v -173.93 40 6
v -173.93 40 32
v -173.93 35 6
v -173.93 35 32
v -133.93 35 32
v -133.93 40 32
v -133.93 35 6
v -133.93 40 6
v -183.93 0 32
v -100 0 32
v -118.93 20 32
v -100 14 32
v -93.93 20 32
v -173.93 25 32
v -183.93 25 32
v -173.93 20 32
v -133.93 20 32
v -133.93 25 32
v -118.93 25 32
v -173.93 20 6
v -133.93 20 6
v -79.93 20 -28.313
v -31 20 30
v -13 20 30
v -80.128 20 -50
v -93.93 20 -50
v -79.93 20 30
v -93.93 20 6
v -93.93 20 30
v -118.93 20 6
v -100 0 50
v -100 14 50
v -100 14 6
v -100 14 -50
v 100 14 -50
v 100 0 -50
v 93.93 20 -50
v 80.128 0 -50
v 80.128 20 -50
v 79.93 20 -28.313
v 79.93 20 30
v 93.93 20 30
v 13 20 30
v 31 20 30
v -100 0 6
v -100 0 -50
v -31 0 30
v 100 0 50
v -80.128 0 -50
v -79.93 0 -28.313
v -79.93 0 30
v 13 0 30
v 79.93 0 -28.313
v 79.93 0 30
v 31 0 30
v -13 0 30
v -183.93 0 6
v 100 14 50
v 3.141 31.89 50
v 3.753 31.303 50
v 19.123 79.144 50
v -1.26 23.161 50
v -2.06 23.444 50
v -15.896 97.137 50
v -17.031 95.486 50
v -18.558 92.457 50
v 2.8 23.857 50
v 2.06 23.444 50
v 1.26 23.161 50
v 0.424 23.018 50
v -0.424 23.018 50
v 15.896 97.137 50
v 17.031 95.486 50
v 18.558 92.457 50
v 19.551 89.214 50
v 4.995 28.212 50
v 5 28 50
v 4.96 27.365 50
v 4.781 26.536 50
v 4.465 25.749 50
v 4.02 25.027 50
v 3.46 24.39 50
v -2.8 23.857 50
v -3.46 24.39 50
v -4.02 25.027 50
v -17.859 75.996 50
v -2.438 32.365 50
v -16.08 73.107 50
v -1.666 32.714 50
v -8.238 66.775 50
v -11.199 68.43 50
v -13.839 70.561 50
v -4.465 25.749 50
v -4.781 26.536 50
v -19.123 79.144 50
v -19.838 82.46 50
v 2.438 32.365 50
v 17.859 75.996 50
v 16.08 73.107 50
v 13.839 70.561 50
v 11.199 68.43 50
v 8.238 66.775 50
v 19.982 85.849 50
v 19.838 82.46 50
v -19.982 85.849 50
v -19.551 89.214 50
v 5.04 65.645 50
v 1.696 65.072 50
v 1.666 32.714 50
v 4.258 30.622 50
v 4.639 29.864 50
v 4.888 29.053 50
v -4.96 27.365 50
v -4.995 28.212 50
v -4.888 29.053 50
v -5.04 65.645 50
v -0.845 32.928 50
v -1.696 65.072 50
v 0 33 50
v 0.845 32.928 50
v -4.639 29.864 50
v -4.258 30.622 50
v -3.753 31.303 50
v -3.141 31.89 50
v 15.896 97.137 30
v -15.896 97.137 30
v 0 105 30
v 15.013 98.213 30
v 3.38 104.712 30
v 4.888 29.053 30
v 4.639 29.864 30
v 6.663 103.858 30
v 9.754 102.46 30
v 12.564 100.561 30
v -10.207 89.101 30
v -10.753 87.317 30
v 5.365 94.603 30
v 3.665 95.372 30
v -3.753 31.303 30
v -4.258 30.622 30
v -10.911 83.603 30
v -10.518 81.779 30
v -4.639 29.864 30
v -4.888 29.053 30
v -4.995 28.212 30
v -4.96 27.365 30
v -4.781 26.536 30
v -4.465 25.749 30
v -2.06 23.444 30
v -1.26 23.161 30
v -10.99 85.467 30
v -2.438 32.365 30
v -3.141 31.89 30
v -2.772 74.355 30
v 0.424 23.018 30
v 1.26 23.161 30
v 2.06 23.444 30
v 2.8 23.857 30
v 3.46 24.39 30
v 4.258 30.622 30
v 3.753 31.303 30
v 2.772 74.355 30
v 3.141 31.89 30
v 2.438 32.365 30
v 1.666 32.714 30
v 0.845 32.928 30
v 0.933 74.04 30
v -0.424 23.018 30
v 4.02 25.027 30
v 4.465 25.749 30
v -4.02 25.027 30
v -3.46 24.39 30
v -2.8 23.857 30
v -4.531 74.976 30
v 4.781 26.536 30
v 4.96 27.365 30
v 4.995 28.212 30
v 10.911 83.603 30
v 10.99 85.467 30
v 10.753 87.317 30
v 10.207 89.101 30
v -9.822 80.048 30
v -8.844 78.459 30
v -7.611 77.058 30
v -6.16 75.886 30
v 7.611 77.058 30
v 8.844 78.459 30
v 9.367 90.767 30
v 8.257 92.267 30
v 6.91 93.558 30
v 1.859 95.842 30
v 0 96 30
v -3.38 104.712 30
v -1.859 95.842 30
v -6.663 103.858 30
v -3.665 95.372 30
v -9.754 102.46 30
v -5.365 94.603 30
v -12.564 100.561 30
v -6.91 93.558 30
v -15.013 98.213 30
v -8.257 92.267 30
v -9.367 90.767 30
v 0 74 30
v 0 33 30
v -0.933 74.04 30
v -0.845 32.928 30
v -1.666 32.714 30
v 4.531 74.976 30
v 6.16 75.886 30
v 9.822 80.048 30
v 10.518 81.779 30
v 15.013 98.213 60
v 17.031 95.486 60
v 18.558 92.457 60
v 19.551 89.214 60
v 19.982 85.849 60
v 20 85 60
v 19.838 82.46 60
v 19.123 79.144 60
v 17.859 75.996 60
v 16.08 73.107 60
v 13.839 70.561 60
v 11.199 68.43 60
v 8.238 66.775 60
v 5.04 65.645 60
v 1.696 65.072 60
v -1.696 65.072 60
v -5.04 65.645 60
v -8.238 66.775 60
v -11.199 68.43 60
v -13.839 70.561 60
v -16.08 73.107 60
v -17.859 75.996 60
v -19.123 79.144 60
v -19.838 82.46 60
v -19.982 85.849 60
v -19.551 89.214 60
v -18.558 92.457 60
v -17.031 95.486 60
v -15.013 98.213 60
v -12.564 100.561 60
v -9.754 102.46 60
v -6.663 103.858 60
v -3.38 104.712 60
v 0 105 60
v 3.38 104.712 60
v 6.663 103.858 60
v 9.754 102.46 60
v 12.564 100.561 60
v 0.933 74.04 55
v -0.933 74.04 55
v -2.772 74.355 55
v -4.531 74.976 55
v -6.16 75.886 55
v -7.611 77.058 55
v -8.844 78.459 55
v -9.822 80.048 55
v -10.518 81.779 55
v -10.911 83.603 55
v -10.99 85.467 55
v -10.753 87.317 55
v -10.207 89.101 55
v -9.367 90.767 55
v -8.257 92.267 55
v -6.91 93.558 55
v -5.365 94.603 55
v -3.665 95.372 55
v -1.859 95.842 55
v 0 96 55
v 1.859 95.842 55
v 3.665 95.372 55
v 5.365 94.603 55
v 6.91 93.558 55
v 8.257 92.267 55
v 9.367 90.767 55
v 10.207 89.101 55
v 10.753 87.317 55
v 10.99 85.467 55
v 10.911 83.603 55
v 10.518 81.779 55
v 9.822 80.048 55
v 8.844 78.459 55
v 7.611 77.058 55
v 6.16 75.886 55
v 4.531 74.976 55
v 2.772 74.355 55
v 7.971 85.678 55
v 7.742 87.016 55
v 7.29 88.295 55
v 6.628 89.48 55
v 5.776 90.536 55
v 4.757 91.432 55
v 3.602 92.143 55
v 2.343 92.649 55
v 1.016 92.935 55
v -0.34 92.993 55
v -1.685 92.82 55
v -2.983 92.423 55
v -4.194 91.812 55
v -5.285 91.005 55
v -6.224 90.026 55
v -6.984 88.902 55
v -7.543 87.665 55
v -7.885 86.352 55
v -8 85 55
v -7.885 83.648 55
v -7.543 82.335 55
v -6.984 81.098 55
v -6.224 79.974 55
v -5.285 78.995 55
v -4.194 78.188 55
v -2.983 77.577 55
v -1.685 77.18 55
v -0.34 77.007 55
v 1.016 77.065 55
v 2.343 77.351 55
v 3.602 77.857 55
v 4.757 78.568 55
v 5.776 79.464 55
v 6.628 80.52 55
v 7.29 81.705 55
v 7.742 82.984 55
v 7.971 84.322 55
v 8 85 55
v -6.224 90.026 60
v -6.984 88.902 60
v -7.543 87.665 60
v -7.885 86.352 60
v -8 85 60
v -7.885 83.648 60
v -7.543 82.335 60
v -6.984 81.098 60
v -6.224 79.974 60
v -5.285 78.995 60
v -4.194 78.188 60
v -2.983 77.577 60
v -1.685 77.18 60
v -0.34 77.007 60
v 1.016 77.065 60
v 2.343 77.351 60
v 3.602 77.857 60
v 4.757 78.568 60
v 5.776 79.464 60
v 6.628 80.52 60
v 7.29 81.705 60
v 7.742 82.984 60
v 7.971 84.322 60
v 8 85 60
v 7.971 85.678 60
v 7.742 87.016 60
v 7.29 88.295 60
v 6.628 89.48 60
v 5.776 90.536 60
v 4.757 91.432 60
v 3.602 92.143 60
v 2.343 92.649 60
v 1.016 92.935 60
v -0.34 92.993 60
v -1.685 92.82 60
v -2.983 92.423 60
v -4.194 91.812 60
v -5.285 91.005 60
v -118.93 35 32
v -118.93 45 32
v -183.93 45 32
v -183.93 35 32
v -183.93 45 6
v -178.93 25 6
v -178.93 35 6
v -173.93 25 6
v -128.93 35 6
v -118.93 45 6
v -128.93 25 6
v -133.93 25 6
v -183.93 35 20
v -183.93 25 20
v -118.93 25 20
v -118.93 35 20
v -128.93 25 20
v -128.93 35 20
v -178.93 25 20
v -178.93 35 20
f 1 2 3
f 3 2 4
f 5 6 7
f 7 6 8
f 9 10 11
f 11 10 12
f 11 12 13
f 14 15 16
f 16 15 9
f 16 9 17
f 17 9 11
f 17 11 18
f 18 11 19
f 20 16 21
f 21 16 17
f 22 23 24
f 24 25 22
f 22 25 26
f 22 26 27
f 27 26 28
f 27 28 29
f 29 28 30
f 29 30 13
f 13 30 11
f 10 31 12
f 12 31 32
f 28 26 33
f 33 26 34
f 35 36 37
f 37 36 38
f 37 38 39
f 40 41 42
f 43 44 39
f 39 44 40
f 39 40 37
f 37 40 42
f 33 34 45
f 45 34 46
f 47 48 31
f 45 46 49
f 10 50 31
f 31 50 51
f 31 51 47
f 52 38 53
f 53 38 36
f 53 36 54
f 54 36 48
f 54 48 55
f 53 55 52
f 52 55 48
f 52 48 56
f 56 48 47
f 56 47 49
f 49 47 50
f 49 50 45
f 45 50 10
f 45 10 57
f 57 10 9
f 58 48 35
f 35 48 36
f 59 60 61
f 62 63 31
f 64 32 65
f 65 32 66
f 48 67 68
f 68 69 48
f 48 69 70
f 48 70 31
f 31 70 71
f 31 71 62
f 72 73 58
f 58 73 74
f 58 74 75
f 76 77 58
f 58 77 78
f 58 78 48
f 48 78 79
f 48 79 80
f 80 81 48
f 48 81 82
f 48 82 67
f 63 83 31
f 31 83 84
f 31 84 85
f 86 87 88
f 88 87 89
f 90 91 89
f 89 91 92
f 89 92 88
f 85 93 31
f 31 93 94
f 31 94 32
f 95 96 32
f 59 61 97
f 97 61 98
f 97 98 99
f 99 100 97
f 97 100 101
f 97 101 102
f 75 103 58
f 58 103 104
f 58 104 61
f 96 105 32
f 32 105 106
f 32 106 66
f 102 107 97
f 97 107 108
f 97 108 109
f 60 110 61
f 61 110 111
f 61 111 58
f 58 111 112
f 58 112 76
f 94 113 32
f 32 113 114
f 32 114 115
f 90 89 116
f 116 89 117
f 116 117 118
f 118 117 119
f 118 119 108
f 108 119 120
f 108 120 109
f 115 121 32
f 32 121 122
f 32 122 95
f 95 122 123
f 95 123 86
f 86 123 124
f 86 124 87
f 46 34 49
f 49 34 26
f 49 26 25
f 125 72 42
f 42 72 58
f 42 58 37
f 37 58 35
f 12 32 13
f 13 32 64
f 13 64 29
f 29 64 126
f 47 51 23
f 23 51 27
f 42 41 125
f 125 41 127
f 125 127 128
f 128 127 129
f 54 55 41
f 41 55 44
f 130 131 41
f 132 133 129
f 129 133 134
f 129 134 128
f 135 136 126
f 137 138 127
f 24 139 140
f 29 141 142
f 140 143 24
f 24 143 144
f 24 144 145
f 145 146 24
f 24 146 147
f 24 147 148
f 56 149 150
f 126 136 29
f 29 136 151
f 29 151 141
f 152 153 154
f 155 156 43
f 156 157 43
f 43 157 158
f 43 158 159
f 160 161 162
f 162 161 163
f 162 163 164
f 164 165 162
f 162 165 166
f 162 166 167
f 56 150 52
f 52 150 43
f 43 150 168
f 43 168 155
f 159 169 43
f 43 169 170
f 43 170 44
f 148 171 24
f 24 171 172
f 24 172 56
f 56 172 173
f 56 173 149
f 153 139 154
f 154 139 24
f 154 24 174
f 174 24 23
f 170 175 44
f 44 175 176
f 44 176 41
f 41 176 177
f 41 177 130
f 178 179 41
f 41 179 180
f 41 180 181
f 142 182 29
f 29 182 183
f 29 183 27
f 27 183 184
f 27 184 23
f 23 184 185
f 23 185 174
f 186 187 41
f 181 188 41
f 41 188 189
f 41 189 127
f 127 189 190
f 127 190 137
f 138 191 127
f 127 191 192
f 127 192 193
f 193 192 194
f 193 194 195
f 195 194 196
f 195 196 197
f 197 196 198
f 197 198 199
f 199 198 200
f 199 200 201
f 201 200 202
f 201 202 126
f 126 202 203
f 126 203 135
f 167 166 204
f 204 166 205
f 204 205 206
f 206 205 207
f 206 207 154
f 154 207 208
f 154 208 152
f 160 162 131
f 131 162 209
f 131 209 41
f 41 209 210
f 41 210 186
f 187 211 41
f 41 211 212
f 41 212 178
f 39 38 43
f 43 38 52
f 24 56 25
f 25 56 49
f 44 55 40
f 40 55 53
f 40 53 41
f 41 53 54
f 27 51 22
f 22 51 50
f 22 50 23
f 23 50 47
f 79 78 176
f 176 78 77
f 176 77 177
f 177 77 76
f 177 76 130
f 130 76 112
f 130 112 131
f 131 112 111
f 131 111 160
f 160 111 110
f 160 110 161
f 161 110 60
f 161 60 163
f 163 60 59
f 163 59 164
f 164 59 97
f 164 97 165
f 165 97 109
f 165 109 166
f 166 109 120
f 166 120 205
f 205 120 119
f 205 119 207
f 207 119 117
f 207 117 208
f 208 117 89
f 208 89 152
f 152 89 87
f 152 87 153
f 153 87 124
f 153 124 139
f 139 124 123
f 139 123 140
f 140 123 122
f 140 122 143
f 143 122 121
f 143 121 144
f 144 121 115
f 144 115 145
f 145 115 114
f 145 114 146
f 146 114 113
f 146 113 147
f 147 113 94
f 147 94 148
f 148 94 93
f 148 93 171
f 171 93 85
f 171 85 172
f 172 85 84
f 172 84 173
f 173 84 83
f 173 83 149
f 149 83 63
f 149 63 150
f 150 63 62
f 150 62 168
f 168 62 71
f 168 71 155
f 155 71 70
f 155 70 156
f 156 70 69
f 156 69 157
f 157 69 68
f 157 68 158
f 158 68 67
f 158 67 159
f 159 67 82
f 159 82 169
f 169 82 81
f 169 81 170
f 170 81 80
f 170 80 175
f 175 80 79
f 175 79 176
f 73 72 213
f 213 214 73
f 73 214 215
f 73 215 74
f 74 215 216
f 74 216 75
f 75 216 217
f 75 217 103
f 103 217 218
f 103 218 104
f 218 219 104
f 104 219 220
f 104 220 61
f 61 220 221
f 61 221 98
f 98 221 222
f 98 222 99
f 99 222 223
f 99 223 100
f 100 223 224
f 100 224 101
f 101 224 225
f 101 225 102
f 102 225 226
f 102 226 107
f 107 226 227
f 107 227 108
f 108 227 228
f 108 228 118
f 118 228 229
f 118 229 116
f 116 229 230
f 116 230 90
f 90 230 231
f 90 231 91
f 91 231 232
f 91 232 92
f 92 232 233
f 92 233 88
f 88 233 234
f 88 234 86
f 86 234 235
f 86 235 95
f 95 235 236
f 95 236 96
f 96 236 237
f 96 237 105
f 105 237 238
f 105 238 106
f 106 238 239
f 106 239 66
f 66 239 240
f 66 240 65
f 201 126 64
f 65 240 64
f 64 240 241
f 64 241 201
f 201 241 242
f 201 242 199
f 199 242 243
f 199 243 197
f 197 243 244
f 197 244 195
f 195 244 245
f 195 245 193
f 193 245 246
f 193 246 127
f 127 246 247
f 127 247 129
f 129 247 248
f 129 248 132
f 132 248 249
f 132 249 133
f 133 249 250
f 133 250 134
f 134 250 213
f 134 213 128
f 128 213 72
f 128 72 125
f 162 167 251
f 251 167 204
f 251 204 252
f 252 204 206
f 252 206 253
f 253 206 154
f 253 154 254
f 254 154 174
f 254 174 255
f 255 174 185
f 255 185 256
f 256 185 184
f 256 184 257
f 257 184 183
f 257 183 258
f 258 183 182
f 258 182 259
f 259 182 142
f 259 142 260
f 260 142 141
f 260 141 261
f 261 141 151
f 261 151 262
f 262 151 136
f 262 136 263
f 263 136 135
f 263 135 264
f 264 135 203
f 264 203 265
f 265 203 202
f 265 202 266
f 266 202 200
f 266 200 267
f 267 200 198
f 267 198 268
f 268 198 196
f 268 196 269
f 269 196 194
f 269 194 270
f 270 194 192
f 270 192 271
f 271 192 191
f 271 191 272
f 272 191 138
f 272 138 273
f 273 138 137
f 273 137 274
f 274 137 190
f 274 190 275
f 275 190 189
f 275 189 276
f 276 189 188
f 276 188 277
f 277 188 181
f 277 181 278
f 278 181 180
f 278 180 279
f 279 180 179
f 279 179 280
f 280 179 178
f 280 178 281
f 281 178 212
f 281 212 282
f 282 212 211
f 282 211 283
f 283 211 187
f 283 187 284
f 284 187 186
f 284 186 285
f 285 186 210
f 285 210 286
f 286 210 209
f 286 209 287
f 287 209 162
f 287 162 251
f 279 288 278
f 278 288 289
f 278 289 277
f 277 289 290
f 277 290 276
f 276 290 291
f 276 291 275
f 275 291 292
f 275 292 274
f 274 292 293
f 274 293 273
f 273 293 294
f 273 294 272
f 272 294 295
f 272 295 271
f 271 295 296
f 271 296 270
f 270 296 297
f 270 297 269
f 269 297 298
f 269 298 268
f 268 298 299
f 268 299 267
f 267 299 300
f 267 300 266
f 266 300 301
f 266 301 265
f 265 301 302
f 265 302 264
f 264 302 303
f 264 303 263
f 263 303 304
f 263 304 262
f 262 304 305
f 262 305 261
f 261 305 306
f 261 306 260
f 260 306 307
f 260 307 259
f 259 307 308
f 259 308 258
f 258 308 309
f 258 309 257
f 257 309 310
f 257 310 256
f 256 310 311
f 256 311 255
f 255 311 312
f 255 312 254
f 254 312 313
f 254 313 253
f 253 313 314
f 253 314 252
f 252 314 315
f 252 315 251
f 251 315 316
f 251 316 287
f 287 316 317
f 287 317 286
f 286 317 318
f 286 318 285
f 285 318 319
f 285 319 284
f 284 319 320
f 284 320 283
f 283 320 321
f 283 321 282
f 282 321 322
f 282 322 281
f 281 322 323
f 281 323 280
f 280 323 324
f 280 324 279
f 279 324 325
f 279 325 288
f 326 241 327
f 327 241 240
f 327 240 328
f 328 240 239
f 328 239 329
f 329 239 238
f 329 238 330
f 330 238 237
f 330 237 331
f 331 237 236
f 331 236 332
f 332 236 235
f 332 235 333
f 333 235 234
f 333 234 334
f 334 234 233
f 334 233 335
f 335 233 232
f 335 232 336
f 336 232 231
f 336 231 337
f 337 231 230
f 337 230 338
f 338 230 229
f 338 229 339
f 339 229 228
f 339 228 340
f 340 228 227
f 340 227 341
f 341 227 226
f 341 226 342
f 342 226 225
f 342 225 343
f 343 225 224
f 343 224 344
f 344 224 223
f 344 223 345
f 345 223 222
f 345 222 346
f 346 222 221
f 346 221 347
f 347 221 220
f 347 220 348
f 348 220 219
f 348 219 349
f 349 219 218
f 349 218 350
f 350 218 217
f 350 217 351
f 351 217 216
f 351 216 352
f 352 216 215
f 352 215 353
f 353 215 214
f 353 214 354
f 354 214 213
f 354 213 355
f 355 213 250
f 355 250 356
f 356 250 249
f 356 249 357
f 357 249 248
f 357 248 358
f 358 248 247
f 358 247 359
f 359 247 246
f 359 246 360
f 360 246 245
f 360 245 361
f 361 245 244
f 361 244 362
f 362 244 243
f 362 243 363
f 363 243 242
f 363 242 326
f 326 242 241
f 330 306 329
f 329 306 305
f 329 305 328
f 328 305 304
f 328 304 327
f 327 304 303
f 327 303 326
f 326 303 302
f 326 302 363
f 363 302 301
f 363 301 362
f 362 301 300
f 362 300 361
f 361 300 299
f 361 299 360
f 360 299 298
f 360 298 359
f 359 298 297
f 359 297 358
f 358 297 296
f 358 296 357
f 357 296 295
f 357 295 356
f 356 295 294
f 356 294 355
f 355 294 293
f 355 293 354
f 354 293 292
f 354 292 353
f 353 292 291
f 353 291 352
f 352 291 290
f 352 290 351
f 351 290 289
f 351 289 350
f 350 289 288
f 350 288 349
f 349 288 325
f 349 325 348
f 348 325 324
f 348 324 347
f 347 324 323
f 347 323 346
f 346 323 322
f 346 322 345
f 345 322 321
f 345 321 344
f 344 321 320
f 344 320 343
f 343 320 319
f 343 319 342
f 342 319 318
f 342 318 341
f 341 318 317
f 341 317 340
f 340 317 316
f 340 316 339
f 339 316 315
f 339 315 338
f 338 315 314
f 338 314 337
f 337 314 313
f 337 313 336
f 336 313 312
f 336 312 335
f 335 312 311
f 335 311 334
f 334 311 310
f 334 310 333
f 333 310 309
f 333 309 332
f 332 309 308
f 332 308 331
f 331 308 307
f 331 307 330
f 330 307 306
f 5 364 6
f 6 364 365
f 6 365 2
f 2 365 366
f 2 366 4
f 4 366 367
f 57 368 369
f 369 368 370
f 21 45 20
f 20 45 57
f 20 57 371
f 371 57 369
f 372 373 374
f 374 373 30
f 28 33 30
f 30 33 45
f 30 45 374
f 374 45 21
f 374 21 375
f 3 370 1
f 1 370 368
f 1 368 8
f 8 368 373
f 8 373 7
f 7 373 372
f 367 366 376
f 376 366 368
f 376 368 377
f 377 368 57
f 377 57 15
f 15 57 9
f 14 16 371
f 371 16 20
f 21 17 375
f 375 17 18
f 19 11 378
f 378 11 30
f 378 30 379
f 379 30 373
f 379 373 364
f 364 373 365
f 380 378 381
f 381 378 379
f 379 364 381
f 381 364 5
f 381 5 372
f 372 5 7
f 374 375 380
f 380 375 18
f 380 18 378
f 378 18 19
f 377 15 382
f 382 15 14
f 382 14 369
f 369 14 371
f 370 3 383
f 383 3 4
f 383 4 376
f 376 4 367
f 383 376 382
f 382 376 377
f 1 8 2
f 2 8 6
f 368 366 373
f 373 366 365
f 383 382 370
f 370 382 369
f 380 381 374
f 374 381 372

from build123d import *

# Parameters (mm, degrees)
SKETCH1_W           = 200
SKETCH1_H           = 100
BOSS_EXTRUDE1_DEPTH = 50
CUT_EXTRUDE1_DEPTH  = 174.205080757
SKETCH3_W           = 80
SKETCH3_H           = 80
CUT_EXTRUDE2_DEPTH  = 230.128784748
CUT_EXTRUDE3_DEPTH  = 100
SKETCH6_R           = 5
CUT_EXTRUDE5_DEPTH  = 100
BOSS_EXTRUDE2_DEPTH = 25
CUT_EXTRUDE6_START  = -35
SKETCH8_R           = 11
CUT_EXTRUDE6_DEPTH  = 35
SKETCH9_R           = 20
SKETCH9_R_2         = 8
BOSS_EXTRUDE3_DEPTH = 5
SKETCH10_W          = 90
SKETCH10_H          = 26
BOSS_EXTRUDE4_DEPTH = 20
SKETCH11_W          = 10
SKETCH11_H          = 26
SKETCH11_W_2        = 15
BOSS_EXTRUDE5_DEPTH = 20
SKETCH12_W          = 65
SKETCH12_H          = 10
CUT_EXTRUDE7_DEPTH  = 12
SKETCH13_W          = 65
SKETCH13_H          = 26
BOSS_EXTRUDE6_DEPTH = 5
CUT_EXTRUDE8_DEPTH  = 35


with BuildPart() as part:
    # Sketch1 → Boss-Extrude1 (new, symmetric)
    with BuildSketch(Plane.XY):
        with Locations((0, 50)):
            Rectangle(SKETCH1_W, SKETCH1_H)
    extrude(amount=BOSS_EXTRUDE1_DEPTH, both=True)

    # Sketch2 → Cut-Extrude1 (cut, through all)
    with BuildSketch(Plane.XY.offset(50)):
        Polygon((-13, 100), (-100, 14), (-100, 100), align=None)
        Polygon((100, 14), (100, 100), (13, 100), align=None)
    extrude(amount=-CUT_EXTRUDE1_DEPTH, mode=Mode.SUBTRACT)

    # Sketch3 → Cut-Extrude2 (cut, through all)
    with BuildSketch(Plane.ZY.offset(100)):
        with Locations((-10, 60)):
            Rectangle(SKETCH3_W, SKETCH3_H)
    extrude(amount=-CUT_EXTRUDE2_DEPTH, mode=Mode.SUBTRACT)

    # Sketch4 → Cut-Extrude3 (cut)
    with BuildSketch(Plane(origin=(0, 20, 0), x_dir=(1, 0, 0), z_dir=(0, 1, 0))):
        Polygon((80.127970494, 50), (13, -30), (-13, -30), (-80.127970494, 50), align=None)
        Polygon((79.930232558, -30), (31, -30), (79.930232558, 28.312780438), align=None)
        Polygon((-79.930232558, -30), (-31, -30), (-79.930232558, 28.312780438), align=None)
    extrude(amount=-CUT_EXTRUDE3_DEPTH, mode=Mode.SUBTRACT)

    # Sketch6 → Cut-Extrude5 (cut)
    with BuildSketch(Plane(origin=(0, 0, 30), x_dir=(-1, 0, 0), z_dir=(0, 0, -1))):
        with Locations((0, 28)):
            Circle(SKETCH6_R)
    extrude(amount=-CUT_EXTRUDE5_DEPTH, mode=Mode.SUBTRACT)

    # Sketch5 → Boss-Extrude2 (add)
    with BuildSketch(Plane(origin=(0, 0, 30), x_dir=(-1, 0, 0), z_dir=(0, 0, -1))):
        with BuildLine():
            ThreePointArc((15.89644113, 97.136851297), (0, 105), (-15.89644113, 97.136851297))
            Line((-15.89644113, 97.136851297), (-13, 100))
            Line((-13, 100), (0, 100))
            Line((0, 100), (13, 100))
            Line((13, 100), (15.89644113, 97.136851297))
        make_face()
        with BuildLine():
            ThreePointArc((-15.89644113, 97.136851297), (-17.926754111, 76.132560289), (0, 65))
            Line((0, 65), (0, 74))
            ThreePointArc((0, 74), (-11, 85), (0, 96))
            Line((0, 96), (0, 100))
            Line((0, 100), (-13, 100))
            Line((-13, 100), (-15.89644113, 97.136851297))
        make_face()
        with BuildLine():
            Line((0, 74), (0, 65))
            ThreePointArc((0, 65), (14.142135624, 70.857864376), (20, 85))
            ThreePointArc((20, 85), (18.946356148, 91.405902645), (15.89644113, 97.136851297))
            Line((15.89644113, 97.136851297), (13, 100))
            Line((13, 100), (0, 100))
            Line((0, 100), (0, 96))
            ThreePointArc((0, 96), (7.778174593, 92.778174593), (11, 85))
            ThreePointArc((11, 85), (7.778174593, 77.221825407), (0, 74))
        make_face()
    extrude(amount=-BOSS_EXTRUDE2_DEPTH)

    # Sketch8 → Cut-Extrude6 (cut)
    with BuildSketch(Plane.XY.offset(55).offset(CUT_EXTRUDE6_START)):
        with Locations((0, 85)):
            Circle(SKETCH8_R)
    extrude(amount=CUT_EXTRUDE6_DEPTH, mode=Mode.SUBTRACT)

    # Sketch9 → Boss-Extrude3 (add)
    with BuildSketch(Plane.XY.offset(55)):
        with Locations((0, 85)):
            Circle(SKETCH9_R)
        with Locations((0, 85)):
            Circle(SKETCH9_R_2, mode=Mode.SUBTRACT)
    extrude(amount=BOSS_EXTRUDE3_DEPTH)

    # Sketch10 → Boss-Extrude4 (add)
    with BuildSketch(Plane(origin=(0, 20, 0), x_dir=(1, 0, 0), z_dir=(0, 1, 0))):
        with Locations((-138.930232558, -19)):
            Rectangle(SKETCH10_W, SKETCH10_H)
    extrude(amount=-BOSS_EXTRUDE4_DEPTH)

    # Sketch11 → Boss-Extrude5 (add)
    with BuildSketch(Plane(origin=(0, 20, 0), x_dir=(1, 0, 0), z_dir=(0, 1, 0))):
        with Locations((-178.930232558, -19)):
            Rectangle(SKETCH11_W, SKETCH11_H)
        with Locations((-126.430232558, -19)):
            Rectangle(SKETCH11_W_2, SKETCH11_H)
    extrude(amount=BOSS_EXTRUDE5_DEPTH)

    # Sketch12 → Cut-Extrude7 (cut)
    with BuildSketch(Plane.XY.offset(32)):
        with Locations((-151.430232558, 30)):
            Rectangle(SKETCH12_W, SKETCH12_H)
    extrude(amount=-CUT_EXTRUDE7_DEPTH, mode=Mode.SUBTRACT)

    # Sketch13 → Boss-Extrude6 (add)
    with BuildSketch(Plane(origin=(0, 40, 0), x_dir=(1, 0, 0), z_dir=(0, 1, 0))):
        with Locations((-151.430232558, -19)):
            Rectangle(SKETCH13_W, SKETCH13_H)
    extrude(amount=BOSS_EXTRUDE6_DEPTH)

    # Sketch14 → Cut-Extrude8 (cut)
    with BuildSketch(Plane.XY.offset(20)):
        Polygon((-133.930232558, 25), (-128.930232558, 25), (-128.930232558, 35), (-133.930232558, 35), (-178.930232558, 35), (-178.930232558, 25), align=None)
    extrude(amount=-CUT_EXTRUDE8_DEPTH, mode=Mode.SUBTRACT)


solid = part.part
